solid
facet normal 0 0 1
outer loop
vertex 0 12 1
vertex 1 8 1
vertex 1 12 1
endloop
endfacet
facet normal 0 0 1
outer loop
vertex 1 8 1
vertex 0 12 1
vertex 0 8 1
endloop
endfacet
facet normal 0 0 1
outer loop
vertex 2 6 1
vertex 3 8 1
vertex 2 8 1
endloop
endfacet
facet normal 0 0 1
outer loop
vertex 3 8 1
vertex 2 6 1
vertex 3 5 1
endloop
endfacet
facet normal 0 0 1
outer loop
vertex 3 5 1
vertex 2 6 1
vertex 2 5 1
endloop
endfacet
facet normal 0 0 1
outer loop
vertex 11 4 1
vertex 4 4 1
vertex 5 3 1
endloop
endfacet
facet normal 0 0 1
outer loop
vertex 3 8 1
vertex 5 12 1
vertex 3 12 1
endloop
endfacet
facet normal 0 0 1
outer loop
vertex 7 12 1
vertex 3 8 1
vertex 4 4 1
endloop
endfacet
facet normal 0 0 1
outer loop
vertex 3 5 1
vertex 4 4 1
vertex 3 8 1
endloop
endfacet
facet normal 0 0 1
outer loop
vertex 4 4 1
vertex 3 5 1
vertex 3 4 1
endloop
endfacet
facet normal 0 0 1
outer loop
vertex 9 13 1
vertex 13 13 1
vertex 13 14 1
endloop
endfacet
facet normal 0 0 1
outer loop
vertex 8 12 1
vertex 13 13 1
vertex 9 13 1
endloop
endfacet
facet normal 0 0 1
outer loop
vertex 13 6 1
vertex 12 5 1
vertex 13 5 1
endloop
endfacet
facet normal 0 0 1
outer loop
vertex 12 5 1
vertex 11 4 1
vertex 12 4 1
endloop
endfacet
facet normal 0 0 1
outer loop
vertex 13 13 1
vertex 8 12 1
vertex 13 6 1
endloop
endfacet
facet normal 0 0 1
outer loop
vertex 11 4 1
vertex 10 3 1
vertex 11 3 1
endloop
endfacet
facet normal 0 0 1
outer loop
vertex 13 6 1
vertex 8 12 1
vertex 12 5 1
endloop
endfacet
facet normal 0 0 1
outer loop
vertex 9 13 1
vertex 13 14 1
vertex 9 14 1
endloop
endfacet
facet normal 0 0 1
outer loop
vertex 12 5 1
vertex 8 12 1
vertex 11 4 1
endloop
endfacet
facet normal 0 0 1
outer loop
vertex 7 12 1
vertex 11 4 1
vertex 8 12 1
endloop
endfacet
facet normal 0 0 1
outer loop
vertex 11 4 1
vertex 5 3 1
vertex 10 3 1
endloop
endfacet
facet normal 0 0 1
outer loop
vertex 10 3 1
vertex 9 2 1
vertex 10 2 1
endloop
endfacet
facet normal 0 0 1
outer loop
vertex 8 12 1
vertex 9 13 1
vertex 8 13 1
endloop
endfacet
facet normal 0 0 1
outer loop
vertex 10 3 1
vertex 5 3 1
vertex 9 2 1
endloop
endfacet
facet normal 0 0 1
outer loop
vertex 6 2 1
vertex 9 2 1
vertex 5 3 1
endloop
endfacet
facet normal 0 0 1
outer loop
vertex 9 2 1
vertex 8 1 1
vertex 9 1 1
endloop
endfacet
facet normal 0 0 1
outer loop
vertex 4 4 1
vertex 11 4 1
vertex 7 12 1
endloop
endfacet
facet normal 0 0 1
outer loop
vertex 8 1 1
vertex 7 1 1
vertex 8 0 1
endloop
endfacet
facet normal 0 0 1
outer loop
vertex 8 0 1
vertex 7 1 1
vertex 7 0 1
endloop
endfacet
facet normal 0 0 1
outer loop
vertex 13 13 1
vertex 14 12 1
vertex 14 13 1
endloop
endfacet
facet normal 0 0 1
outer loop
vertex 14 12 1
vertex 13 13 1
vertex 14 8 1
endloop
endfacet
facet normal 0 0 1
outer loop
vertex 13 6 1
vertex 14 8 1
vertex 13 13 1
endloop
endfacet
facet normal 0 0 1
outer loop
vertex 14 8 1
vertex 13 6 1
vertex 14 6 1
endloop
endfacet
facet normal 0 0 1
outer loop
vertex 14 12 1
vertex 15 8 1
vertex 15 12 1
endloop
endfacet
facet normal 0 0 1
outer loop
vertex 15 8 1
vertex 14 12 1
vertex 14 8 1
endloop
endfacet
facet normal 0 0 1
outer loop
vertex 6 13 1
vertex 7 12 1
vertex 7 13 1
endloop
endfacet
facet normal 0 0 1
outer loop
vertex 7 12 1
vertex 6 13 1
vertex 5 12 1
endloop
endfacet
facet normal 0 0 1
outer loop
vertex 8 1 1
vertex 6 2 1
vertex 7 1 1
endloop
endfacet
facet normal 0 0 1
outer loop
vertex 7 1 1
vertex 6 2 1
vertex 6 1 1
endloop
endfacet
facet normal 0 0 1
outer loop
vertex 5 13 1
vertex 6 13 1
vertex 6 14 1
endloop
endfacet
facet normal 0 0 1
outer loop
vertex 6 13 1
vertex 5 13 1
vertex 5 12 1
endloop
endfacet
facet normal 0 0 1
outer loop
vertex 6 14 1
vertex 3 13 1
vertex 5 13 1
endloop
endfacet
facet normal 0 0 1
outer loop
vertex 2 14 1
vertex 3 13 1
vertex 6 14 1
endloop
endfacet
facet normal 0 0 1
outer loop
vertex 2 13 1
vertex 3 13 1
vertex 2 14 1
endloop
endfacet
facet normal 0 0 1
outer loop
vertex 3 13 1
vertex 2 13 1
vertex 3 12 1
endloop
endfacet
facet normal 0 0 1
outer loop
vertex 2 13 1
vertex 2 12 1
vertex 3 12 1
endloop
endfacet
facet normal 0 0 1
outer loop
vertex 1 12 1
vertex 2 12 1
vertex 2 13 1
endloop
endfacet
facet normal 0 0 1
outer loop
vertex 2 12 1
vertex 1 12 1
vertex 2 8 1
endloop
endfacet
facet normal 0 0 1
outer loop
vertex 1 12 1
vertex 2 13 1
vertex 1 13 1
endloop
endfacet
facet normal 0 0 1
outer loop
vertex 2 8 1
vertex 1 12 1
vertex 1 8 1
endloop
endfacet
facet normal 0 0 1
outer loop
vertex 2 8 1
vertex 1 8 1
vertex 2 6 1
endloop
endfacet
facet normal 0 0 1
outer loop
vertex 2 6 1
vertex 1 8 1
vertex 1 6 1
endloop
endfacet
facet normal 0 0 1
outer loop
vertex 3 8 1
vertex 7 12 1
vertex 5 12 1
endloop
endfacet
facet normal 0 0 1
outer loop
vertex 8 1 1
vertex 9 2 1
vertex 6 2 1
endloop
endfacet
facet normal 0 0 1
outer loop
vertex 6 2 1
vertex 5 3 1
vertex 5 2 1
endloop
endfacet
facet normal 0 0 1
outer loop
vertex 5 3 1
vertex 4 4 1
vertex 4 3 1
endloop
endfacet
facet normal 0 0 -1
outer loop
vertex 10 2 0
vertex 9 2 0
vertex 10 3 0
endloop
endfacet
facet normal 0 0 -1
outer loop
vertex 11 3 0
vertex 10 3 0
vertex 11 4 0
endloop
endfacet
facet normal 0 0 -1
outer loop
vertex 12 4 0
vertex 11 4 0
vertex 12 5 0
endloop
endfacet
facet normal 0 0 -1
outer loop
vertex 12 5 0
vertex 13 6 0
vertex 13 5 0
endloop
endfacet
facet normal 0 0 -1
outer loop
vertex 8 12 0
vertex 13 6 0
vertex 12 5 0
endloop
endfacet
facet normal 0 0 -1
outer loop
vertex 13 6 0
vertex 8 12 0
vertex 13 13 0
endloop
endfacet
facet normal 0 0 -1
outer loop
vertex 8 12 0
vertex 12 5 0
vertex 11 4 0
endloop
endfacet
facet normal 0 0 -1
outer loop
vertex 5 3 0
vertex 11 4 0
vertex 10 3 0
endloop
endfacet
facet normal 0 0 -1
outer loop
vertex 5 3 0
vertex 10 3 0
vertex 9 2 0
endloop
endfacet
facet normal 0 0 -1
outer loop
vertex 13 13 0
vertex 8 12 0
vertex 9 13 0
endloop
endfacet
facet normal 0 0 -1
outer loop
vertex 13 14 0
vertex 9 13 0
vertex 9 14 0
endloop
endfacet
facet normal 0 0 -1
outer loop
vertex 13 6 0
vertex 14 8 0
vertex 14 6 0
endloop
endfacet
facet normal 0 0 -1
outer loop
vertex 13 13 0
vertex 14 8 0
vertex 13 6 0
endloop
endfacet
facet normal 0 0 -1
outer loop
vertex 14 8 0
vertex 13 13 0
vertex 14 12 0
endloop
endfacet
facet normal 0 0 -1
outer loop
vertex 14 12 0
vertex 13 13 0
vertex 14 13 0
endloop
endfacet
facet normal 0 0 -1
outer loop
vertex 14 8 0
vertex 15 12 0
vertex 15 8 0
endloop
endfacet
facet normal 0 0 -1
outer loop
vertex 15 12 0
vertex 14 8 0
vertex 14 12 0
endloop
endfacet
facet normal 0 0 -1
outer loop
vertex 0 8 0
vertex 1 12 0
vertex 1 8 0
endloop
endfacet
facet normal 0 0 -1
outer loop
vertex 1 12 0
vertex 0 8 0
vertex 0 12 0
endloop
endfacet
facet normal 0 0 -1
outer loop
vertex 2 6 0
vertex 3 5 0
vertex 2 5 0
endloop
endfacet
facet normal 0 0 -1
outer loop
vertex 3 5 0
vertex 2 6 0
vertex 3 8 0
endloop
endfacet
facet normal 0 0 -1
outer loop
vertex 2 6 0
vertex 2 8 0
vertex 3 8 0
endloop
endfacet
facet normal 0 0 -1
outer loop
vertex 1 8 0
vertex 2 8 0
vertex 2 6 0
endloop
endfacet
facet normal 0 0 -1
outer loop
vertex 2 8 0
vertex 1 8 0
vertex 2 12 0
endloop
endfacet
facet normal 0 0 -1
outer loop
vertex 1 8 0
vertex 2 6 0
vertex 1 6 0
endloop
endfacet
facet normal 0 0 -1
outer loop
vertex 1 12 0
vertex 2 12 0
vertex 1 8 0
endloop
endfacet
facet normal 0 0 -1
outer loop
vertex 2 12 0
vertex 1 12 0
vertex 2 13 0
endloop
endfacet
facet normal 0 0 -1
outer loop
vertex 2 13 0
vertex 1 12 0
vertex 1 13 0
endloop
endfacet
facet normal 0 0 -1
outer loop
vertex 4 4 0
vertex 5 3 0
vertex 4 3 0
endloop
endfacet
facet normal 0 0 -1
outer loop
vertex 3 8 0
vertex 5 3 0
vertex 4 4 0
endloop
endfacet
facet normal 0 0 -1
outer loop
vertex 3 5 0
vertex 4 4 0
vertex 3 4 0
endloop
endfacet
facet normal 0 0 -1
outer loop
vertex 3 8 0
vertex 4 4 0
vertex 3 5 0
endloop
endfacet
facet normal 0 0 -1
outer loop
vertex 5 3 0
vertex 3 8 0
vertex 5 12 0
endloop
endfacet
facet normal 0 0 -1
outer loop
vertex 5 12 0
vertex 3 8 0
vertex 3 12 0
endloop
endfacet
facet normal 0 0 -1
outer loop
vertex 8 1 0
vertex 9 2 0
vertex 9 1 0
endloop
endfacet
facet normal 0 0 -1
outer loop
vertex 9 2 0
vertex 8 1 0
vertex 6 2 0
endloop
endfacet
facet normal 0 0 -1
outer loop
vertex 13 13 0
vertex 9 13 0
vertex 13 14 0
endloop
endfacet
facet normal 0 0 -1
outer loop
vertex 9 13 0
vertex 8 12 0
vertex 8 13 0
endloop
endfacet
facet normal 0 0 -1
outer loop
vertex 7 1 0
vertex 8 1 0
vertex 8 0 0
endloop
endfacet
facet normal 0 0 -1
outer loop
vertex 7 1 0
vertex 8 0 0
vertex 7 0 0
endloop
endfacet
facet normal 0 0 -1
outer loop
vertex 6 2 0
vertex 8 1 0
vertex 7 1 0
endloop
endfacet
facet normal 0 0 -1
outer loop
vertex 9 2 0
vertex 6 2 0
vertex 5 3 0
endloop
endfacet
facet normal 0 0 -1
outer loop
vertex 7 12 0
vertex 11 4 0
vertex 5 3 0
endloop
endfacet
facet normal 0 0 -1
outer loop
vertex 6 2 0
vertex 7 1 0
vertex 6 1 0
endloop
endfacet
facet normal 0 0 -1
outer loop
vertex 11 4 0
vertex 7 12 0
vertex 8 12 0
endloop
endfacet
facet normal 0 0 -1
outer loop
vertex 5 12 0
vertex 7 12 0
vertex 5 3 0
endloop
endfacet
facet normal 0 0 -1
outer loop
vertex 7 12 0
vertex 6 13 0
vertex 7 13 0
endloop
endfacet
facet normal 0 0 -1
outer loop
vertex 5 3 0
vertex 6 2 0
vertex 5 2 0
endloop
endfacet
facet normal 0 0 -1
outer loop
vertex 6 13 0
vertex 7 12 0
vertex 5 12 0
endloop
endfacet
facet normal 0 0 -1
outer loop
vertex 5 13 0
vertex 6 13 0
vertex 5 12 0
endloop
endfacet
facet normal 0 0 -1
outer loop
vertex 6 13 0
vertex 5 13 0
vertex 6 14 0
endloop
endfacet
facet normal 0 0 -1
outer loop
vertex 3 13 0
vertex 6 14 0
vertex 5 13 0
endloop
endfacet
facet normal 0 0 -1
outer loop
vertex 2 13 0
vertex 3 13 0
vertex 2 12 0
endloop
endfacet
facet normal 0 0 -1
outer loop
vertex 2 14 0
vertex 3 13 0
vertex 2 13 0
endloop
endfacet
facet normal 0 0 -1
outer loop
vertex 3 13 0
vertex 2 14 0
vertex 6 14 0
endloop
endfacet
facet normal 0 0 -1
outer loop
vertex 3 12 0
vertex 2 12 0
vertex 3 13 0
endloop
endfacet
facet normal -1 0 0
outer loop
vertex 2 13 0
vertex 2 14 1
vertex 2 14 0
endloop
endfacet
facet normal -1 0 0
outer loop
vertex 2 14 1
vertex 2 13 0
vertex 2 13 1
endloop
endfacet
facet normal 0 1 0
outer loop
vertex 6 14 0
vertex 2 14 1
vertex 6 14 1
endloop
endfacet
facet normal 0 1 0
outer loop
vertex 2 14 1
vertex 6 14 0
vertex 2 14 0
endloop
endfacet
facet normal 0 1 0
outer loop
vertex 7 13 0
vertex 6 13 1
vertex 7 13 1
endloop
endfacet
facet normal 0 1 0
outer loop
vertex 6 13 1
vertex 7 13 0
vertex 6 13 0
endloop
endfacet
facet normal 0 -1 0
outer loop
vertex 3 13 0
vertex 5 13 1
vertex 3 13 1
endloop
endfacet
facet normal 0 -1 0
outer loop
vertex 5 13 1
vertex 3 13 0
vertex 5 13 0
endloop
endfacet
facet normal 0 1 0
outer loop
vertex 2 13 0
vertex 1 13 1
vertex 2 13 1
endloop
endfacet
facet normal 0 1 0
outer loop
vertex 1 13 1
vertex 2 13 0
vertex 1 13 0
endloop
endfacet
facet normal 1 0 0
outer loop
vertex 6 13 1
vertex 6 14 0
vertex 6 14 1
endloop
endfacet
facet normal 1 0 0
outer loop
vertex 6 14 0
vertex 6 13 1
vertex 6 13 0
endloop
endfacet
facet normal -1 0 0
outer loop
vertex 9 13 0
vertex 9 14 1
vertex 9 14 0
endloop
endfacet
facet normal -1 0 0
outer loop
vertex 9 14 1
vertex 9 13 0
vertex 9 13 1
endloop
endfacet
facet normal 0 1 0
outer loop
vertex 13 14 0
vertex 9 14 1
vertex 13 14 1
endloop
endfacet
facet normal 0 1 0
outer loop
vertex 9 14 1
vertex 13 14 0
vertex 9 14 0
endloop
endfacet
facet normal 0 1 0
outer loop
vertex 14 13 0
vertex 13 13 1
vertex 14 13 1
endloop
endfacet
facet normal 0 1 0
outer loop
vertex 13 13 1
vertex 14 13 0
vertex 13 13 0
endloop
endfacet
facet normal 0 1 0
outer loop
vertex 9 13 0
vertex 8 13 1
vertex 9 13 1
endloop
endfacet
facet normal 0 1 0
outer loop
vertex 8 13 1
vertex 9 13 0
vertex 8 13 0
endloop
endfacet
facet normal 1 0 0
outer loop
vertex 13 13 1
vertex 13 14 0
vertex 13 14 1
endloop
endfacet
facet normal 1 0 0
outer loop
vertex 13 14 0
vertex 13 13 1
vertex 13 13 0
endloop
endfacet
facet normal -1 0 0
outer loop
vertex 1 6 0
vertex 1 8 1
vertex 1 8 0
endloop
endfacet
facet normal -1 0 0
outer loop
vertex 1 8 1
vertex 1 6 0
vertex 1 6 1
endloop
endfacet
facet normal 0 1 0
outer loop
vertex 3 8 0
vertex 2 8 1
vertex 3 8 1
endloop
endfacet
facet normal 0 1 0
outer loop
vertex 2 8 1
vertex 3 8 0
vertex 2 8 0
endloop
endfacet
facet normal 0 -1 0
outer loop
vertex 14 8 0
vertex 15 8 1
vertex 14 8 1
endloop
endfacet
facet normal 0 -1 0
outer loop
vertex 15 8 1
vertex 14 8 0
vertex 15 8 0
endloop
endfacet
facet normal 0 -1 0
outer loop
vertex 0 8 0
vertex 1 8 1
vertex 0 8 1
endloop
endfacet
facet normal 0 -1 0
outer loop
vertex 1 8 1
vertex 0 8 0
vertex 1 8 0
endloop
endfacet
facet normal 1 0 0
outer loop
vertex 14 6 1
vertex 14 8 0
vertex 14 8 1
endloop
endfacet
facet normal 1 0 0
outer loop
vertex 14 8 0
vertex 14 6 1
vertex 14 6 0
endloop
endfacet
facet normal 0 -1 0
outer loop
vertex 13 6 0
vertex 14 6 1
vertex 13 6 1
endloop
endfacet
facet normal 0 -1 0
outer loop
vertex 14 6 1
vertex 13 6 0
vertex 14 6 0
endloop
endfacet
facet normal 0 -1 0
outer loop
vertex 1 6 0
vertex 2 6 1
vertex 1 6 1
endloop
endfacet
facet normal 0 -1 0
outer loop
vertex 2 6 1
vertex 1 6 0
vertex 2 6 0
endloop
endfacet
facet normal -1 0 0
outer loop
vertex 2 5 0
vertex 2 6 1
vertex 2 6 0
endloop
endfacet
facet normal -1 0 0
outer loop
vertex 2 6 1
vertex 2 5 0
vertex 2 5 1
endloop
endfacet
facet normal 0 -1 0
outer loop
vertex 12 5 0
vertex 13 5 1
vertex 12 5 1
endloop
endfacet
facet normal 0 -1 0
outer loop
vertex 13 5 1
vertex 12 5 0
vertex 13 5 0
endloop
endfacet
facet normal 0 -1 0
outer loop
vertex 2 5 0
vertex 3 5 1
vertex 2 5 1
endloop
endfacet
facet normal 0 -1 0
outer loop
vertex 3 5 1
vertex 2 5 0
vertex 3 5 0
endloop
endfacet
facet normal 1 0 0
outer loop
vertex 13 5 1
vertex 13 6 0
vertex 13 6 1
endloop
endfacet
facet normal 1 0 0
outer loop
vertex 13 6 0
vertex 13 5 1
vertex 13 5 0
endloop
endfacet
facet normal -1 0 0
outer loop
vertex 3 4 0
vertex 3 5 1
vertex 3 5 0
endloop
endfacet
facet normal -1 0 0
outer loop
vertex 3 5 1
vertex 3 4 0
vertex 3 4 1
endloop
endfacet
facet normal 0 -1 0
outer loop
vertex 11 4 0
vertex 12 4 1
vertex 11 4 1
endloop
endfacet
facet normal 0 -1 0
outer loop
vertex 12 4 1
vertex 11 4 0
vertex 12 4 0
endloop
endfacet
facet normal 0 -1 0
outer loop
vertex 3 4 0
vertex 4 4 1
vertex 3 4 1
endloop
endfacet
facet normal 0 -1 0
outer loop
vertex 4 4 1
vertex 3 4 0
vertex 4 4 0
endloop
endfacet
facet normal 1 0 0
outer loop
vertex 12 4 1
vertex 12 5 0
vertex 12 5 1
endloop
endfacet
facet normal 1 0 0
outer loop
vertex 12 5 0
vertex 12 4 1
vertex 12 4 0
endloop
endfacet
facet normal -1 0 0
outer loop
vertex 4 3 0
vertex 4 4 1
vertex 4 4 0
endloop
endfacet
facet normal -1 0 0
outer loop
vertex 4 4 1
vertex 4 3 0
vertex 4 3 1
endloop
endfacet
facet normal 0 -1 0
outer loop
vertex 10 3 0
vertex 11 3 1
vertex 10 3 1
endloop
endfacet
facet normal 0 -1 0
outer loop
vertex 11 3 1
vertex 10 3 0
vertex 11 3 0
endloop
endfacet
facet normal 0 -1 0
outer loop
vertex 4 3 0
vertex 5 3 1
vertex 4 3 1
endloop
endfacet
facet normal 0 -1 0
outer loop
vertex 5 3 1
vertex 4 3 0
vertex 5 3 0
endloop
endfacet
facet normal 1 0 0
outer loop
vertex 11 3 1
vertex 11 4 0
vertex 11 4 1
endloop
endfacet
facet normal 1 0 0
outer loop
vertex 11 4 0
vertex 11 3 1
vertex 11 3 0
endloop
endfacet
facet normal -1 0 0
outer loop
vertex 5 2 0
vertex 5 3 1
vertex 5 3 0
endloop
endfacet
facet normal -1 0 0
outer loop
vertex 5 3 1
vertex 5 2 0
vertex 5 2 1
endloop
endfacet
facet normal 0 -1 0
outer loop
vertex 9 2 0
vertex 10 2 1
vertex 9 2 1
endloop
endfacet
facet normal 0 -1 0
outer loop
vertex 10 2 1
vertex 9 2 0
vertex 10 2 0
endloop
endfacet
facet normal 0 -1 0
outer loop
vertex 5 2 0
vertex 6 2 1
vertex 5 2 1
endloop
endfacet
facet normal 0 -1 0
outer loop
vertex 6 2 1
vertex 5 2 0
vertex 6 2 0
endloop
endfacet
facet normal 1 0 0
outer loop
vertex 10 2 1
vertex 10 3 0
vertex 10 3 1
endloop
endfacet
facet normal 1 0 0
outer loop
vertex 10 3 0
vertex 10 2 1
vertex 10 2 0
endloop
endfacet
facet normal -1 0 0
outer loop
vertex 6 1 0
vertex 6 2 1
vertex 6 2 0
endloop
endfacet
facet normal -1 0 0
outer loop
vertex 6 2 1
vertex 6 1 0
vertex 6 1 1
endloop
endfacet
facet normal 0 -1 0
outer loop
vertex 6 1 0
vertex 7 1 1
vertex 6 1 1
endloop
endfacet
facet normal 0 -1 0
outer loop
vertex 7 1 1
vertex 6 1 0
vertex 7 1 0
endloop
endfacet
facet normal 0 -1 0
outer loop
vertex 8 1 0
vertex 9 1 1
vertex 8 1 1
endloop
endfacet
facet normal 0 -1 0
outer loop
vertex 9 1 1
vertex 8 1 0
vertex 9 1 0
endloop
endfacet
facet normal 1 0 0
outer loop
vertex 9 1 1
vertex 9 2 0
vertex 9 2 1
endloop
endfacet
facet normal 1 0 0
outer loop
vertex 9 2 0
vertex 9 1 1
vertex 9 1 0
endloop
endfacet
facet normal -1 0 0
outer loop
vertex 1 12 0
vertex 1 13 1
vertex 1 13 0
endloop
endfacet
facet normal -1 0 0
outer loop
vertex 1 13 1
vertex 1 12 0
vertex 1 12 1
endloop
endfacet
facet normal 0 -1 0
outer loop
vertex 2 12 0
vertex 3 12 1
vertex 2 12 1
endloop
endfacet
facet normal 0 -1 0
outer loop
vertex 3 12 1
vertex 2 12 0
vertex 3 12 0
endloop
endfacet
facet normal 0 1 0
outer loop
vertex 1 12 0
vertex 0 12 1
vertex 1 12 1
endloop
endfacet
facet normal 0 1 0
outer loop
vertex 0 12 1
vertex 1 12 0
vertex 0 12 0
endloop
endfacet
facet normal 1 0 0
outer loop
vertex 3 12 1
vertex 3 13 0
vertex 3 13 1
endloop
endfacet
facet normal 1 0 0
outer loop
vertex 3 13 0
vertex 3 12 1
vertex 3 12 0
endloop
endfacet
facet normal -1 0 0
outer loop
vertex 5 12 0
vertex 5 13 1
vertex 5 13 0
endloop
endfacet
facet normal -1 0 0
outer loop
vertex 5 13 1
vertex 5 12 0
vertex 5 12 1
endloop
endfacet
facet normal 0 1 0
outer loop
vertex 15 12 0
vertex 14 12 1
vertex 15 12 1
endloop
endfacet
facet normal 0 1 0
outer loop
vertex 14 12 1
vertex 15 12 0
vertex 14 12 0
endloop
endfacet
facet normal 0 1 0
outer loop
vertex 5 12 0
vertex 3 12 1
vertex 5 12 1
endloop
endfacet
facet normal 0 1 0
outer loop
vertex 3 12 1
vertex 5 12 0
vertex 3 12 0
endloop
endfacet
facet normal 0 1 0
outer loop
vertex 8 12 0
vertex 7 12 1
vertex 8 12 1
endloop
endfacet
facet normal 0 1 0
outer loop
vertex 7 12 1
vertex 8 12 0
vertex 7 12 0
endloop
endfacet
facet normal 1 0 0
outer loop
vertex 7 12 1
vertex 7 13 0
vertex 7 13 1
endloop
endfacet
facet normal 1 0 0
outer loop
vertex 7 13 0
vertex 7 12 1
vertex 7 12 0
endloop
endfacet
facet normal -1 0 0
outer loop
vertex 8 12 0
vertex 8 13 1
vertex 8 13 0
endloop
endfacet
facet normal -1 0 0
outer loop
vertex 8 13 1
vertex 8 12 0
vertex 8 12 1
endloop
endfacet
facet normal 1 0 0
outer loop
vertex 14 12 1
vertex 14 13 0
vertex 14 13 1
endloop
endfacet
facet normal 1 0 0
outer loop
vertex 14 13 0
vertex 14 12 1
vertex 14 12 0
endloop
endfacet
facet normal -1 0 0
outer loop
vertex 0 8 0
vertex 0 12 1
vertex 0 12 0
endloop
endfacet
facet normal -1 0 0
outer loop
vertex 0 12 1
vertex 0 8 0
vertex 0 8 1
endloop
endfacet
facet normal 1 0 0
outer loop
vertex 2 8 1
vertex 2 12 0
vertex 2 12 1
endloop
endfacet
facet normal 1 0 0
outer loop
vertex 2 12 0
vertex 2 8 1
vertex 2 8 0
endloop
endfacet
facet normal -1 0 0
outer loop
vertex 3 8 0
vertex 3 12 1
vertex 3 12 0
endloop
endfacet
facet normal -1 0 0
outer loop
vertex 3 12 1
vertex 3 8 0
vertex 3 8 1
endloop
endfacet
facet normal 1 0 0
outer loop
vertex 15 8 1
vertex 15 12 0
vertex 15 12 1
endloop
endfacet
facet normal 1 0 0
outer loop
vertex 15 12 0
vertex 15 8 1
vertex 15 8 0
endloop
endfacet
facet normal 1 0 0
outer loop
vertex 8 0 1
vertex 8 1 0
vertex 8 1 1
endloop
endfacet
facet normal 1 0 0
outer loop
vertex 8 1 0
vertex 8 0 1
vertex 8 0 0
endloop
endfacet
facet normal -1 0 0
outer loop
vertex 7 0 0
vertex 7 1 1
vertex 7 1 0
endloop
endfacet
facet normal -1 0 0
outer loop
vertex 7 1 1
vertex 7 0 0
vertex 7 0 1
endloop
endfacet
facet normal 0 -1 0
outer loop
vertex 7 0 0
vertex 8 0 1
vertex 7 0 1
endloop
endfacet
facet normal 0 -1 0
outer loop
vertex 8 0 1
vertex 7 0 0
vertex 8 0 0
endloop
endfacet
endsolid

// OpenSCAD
/*
 * 3D Pixel Art - Heart 2
 * Copyright (c) 2019 Anar Software LLC. < http://anars.com >
 *
 * This program is free software: you can redistribute it and/or modify it under
 * the terms of the GNU General Public License as published by the Free Software
 * Foundation, either version 3 of the License, or (at your option) any later
 * version.
 *
 * This program is distributed in the hope that it will be useful, but WITHOUT
 * ANY WARRANTY; without even the implied warranty of MERCHANTABILITY or FITNESS
 * FOR A PARTICULAR PURPOSE. See the GNU General Public License for more details.
 *
 * You should have received a copy of the GNU General Public License along with
 * this program. If not, see < http://www.gnu.org/licenses/ >
 *
 */

/* [Global] */

/* [Pixel Settings] */

// Pixel Length (X)
pixel_length = 1;

// Pixel Width (Y)
pixel_width = 1;

// Pixel Height (Z)
pixel_height = 1;

/* [Hidden] */

data=[[
     "  XXXX   XXXX",
     " XX  XX XXXXXX",
     "XX XXXXXXXXXXXX",
     "XX XXXXXXXXXXXX",
     "XX XXXXXXXXXXXX",
     "XX XXXXXXXXXXXX",
     " XXXXXXXXXXXXX",
     " XXXXXXXXXXXXX",
     "  XXXXXXXXXXX",
     "   XXXXXXXXX",
     "    XXXXXXX",
     "     XXXXX",
     "      XXX",
     "       X"]];

for (z = [0 : len(data) - 1])
    for (y = [0 : len(data[z]) - 1])
        if (len(data[z][y]) > 0)
            for (x = [0 : len(data[z][y]) - 1])
                if (data[z][y][x] == "X")
                    translate([x * pixel_length, (len(data[z]) - 1 - y) * pixel_width, z * pixel_height])
                        cube([pixel_length, pixel_width, pixel_height]);
